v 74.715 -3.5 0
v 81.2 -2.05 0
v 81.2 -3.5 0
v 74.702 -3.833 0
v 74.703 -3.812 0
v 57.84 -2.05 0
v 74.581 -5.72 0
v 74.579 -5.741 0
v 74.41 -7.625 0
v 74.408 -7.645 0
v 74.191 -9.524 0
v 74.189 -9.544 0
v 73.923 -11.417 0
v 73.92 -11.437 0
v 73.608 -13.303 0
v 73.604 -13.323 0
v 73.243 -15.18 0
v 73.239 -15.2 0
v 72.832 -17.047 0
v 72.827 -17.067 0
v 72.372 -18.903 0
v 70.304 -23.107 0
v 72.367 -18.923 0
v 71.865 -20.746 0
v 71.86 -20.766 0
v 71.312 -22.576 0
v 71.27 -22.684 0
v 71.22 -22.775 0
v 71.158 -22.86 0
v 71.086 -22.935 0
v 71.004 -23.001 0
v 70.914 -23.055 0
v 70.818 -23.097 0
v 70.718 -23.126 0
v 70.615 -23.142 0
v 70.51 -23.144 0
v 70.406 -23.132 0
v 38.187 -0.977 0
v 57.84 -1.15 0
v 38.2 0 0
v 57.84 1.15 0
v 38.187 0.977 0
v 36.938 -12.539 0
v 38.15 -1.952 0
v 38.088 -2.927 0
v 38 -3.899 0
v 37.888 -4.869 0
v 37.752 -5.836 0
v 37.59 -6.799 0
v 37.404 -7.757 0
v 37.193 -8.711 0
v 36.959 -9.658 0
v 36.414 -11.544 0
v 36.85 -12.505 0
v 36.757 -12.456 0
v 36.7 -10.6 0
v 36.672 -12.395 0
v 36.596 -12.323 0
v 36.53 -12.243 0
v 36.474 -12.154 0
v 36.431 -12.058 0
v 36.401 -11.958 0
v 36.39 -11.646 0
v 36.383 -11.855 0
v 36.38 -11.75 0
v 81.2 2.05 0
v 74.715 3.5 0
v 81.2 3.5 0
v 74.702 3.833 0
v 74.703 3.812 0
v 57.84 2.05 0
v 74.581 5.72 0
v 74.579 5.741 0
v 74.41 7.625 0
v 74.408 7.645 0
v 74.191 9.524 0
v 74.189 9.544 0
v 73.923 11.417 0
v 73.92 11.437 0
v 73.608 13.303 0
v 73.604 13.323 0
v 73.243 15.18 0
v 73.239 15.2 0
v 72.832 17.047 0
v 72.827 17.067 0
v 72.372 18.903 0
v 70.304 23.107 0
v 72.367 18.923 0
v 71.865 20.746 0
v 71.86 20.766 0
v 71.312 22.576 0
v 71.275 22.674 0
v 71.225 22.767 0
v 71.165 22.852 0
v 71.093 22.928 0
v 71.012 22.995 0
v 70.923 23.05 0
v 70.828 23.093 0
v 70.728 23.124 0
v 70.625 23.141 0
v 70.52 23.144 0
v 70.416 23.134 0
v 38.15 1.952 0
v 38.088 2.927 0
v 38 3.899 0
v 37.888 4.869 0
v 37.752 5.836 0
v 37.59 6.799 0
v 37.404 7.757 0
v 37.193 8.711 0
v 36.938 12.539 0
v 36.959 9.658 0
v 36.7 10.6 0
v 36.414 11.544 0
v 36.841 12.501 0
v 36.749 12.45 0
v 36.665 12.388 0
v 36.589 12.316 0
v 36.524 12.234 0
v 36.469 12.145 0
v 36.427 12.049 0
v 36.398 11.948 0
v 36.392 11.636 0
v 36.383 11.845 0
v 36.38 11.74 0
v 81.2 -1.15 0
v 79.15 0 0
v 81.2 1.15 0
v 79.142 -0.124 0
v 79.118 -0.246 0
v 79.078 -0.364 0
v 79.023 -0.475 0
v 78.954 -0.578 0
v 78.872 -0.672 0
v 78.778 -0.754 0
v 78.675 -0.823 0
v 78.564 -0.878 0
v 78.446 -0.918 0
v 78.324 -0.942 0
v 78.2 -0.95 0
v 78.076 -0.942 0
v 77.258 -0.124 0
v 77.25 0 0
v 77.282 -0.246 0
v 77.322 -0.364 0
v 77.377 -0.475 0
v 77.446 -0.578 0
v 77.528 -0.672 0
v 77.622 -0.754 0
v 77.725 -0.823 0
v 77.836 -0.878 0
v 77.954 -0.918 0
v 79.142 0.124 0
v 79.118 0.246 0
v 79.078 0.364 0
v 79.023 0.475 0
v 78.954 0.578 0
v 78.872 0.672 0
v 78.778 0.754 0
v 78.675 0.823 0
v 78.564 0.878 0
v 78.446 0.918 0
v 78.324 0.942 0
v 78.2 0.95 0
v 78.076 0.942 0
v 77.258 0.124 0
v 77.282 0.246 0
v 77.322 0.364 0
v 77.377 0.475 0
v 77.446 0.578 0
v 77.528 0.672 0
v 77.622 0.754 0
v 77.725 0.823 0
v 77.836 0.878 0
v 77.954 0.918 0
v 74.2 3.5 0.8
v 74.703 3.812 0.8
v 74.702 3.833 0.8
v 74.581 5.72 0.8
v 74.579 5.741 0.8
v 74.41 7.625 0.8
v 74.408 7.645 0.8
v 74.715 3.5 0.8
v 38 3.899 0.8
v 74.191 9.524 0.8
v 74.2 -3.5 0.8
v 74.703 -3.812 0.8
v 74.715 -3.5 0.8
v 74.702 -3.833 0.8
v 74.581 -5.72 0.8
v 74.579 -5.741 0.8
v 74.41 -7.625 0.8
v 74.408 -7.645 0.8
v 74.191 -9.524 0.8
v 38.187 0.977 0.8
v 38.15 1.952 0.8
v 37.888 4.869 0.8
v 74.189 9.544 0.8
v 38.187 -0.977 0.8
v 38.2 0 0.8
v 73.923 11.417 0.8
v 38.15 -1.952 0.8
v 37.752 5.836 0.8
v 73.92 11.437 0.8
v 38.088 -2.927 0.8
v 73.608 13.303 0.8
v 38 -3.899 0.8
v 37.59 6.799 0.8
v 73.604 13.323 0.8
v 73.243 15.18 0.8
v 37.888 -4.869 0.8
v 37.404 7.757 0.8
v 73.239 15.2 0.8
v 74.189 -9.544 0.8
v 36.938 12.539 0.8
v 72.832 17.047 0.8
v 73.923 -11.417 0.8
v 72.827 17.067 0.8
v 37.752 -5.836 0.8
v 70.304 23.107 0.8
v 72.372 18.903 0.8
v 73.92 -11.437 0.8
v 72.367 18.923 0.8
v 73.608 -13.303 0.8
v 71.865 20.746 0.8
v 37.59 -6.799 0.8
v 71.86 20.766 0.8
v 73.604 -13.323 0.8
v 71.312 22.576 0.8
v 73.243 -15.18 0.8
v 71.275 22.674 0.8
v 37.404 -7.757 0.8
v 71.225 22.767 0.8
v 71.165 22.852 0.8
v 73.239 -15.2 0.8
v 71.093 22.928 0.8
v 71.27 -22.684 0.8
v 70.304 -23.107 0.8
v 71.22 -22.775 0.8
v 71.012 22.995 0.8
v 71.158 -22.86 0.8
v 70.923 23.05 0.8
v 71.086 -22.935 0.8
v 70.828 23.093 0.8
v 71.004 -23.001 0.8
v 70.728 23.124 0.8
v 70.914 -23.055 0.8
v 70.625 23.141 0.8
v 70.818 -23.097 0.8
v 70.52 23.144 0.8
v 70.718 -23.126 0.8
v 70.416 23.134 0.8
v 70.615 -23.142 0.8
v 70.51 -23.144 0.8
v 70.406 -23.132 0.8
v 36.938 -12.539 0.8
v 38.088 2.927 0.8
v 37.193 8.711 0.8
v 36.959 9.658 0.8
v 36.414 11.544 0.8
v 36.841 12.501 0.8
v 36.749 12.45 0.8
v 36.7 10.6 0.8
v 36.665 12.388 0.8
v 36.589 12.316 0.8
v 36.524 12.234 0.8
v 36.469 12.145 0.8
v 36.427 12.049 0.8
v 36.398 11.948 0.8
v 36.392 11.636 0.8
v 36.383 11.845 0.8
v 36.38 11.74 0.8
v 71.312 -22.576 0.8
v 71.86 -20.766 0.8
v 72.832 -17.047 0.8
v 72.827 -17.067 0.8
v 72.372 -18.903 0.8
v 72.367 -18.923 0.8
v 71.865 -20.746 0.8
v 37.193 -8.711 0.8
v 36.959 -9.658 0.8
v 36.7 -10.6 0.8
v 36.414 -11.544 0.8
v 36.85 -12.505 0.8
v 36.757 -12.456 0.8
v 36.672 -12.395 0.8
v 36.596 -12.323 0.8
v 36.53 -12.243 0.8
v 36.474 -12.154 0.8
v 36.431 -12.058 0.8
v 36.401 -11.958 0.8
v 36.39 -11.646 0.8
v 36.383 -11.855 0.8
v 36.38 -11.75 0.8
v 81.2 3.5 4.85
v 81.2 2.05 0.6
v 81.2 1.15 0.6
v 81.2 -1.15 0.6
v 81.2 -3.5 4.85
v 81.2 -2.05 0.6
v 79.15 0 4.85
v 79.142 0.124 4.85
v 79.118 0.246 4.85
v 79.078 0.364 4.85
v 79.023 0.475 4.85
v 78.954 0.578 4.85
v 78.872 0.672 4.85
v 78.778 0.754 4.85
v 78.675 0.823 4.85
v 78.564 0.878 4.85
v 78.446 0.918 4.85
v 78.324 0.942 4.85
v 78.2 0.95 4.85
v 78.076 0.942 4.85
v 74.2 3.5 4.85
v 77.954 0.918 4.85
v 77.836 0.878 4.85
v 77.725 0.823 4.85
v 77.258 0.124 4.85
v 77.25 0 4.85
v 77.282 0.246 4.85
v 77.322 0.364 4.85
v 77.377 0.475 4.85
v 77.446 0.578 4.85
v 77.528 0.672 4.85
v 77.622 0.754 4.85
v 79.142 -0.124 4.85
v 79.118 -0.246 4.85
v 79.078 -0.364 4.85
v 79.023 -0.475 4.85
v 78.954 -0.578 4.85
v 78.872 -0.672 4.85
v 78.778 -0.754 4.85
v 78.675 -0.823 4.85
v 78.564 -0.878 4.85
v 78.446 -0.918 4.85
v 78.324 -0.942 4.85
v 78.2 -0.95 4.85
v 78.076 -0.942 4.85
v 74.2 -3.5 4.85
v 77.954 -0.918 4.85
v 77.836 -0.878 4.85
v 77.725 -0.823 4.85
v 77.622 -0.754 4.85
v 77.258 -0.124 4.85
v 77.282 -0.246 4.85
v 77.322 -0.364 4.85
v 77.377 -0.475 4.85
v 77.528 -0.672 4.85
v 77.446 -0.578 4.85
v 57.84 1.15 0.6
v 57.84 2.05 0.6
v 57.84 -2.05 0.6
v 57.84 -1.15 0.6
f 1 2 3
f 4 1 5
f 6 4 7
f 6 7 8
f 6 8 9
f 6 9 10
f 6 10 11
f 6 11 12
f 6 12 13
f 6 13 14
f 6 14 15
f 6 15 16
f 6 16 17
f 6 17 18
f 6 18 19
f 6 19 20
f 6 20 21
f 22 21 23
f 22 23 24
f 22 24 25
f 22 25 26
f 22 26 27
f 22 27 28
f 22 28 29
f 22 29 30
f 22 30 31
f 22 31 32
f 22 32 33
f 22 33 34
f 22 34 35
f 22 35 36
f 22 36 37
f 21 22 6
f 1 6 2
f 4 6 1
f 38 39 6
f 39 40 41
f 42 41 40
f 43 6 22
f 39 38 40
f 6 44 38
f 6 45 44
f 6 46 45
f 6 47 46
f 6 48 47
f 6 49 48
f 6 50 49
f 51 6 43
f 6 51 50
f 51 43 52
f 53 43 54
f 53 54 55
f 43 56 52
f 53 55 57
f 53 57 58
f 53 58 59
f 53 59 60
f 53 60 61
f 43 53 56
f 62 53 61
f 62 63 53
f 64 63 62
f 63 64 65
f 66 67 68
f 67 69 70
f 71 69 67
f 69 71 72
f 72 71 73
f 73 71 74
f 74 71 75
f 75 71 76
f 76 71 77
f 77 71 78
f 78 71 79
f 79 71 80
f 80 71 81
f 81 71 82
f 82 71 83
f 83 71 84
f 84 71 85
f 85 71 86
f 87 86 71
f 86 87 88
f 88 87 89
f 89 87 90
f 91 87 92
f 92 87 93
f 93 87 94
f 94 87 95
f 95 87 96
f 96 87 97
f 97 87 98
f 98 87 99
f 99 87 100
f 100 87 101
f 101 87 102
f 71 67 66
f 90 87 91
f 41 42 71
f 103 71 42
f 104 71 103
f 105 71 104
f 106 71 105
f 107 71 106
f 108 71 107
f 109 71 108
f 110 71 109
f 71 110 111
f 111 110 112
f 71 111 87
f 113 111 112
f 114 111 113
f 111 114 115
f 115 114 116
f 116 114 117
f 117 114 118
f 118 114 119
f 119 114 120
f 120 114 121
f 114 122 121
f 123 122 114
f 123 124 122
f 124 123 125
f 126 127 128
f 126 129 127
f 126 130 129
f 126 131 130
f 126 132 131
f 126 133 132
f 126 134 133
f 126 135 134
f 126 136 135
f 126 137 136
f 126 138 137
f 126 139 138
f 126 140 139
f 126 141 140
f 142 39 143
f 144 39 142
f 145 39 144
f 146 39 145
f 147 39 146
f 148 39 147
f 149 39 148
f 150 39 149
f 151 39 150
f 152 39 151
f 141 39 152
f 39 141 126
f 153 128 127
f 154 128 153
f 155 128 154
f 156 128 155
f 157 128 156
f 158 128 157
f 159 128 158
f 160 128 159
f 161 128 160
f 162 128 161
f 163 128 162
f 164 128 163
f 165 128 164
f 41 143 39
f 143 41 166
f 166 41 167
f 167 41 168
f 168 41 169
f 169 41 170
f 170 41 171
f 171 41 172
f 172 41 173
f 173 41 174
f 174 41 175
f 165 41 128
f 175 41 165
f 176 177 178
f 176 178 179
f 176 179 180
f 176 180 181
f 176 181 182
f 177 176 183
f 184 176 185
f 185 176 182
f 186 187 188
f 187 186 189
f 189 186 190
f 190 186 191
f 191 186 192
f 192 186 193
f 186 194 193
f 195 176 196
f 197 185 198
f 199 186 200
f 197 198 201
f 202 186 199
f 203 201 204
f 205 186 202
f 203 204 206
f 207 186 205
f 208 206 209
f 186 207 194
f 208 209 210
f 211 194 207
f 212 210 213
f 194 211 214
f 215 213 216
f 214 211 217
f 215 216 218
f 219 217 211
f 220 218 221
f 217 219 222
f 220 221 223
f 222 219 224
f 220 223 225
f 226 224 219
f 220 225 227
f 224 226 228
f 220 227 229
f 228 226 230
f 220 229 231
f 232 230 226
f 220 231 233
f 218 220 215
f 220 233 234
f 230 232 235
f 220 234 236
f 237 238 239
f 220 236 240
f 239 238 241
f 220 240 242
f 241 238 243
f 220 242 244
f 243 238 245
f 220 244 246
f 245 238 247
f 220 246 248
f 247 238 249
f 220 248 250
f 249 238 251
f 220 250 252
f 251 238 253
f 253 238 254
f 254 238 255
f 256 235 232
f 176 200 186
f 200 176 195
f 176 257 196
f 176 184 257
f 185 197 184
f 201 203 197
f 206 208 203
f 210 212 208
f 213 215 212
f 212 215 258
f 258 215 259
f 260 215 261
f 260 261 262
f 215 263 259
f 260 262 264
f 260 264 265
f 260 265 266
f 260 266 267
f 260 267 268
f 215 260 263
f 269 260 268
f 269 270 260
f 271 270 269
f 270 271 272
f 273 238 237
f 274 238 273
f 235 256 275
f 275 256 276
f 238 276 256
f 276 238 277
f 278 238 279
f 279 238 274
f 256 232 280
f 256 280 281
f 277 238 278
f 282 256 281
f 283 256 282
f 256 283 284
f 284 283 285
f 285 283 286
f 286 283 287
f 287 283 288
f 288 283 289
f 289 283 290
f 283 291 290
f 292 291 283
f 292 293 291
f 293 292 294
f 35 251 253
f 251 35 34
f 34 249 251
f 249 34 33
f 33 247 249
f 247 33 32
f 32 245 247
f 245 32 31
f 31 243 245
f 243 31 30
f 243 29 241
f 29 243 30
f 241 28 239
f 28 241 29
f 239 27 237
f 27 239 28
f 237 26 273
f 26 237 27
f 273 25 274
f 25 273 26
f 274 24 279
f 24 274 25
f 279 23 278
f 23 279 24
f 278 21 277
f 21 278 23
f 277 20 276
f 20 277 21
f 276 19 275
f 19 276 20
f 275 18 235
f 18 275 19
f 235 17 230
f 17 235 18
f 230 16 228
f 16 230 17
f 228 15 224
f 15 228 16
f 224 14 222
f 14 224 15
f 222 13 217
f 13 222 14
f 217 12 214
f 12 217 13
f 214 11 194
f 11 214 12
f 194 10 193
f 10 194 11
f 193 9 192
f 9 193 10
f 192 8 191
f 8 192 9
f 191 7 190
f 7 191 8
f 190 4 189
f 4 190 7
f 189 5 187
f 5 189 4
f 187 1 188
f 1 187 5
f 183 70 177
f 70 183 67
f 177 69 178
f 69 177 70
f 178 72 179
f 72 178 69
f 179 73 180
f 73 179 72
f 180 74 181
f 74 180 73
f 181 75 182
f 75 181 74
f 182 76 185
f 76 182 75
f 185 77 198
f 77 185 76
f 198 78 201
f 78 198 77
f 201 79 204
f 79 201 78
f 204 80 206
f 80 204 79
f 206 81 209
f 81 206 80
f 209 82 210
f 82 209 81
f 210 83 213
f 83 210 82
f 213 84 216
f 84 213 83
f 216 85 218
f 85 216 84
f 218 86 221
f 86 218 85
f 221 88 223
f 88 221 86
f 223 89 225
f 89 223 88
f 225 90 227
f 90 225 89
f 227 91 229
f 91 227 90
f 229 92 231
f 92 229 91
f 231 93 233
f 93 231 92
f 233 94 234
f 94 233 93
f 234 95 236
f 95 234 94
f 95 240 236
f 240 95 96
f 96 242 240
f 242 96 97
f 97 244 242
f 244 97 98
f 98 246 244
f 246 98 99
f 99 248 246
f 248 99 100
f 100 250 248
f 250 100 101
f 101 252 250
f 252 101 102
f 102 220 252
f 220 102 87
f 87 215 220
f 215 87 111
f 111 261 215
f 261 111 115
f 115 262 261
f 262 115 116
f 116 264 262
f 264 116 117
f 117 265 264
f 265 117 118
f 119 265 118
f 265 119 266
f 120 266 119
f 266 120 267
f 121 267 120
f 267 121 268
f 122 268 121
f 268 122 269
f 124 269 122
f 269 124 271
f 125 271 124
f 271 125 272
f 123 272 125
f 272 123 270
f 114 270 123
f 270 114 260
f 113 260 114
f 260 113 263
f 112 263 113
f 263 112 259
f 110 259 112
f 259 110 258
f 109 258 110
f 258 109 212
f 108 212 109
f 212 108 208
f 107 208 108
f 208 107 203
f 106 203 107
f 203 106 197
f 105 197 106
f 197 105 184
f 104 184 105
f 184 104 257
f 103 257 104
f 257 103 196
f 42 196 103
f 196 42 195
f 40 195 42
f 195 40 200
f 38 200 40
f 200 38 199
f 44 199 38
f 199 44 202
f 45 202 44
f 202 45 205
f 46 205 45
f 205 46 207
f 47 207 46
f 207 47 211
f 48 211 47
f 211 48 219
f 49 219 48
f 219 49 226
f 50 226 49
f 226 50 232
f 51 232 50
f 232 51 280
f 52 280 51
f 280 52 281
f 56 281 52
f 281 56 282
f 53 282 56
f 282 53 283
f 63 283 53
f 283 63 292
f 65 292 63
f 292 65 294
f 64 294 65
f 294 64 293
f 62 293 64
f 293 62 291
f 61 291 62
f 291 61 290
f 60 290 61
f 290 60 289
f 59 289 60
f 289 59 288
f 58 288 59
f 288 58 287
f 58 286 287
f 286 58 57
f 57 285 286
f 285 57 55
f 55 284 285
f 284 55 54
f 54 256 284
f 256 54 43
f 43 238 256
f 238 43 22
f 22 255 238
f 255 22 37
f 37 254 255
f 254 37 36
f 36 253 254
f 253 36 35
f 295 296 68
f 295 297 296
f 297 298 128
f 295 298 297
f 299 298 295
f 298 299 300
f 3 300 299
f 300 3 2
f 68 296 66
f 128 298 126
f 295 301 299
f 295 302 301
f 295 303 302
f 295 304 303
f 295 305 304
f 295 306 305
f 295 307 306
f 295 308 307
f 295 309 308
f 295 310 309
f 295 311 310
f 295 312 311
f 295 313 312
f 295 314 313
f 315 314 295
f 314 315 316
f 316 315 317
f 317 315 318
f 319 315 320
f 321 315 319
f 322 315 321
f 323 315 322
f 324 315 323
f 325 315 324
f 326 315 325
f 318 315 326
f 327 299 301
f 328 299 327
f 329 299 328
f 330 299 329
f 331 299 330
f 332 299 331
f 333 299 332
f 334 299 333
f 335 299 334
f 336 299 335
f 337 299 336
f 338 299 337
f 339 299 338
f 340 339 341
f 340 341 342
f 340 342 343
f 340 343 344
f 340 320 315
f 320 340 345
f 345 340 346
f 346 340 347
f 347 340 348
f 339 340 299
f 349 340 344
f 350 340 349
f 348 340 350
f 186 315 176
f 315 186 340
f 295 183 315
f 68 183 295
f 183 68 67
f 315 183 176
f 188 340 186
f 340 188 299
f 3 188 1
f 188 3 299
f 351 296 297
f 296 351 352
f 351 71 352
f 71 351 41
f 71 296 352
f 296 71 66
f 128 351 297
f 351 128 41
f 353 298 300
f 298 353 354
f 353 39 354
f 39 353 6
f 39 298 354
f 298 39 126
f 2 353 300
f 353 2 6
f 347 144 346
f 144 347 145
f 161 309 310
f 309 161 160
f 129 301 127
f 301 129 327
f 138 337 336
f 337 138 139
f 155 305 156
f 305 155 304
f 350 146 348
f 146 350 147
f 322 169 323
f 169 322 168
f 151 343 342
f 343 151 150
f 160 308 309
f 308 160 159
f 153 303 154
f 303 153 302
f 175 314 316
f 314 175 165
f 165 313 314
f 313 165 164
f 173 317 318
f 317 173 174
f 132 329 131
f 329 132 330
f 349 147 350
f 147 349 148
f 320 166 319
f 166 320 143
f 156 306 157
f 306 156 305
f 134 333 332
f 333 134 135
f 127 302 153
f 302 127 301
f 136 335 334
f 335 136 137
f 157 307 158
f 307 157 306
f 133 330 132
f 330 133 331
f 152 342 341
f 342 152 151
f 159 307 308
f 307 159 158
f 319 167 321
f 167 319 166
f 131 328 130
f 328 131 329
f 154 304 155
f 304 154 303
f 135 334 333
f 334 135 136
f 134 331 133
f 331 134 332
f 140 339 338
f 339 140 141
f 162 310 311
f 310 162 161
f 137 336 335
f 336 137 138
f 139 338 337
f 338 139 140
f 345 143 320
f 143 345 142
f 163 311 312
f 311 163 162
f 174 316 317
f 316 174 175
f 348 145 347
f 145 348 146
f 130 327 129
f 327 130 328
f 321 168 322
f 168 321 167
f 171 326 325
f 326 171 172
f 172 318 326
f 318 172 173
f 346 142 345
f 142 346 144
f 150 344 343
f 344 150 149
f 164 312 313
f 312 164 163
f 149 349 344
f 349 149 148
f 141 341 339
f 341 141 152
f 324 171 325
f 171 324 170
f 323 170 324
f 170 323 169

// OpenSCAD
// file: parameters.scad
// =============================================================================
// Gen-BV — nightly 2026-10-10 (physics_scorer, honest magpylib watts)
// Fewer, wider-spaced poles: 6 Ø20 per rotor (12 of the 16) on an R57 ring over nine 35.2° bobbins (r 39–74 mm, 15.7 mm build). Wider pole pitch means less pole-to-pole leakage and bigger coils, but the electrical frequency drops 25 % and 4 Ø20 sit idle; diametric Ø5 assists lowered the score here, so none are fitted. The scorer puts it at about 62 % of Gen-BR.
// Clocking 0 deg (magnets N facing S) + D-flat keyed bore + index notch + flip-symmetric hole map.
// Windable 2-piece bobbin; turns = physics_scorer turns_fit; copper only between flanges.
// Steel back-iron: 2× Ø142 × 4.76 mm (3/16") mild-steel discs (steel_backiron_disc.dxf); magnets sit ON the steel
// (through-pockets) -> score with --back-iron. Night 2026-10-10.
// =============================================================================
topology            = "dual_rotor";

// --- Wire / winding (physics_scorer winding-fit) -------------------------------
wire_awg            = 26;
wire_od             = 0.45;     // insulated OD mm (bare 0.405)
fill_realistic      = 0.65;     // insulated-wire area / window (DENSE layered wind with a jig; scorer cap 0.65)
turns               = 518;       // = physics_scorer turns_fit (do NOT raise)
coil_former_type    = "bobbin";
coil_core_inset     = 15.66;     // radial copper build: hub = copper boundary inset by this
wind_build_axial    = 0.0;      // nothing proud of the flanges
wind_build_radial   = 0.0;

// --- Bobbin (base + lid) ---------------------------------------------------------
coil_id_r           = 39.00;    // copper boundary sector
coil_od_r           = 74.00;
span_deg            = 35.15;    // = pitch - 2*asin((wall+0.85)/coil_id_r) -> >=1.2 mm stator web
former_web          = 8.10;     // copper height between flanges (TALL copper: steel keeps Bz up)
flange_t            = 0.80;     // >= 0.8 mm FDM wall rule (tall winds push on the flanges)
wall                = 0.80;     // flange lip beyond copper
former_bare_h       = former_web + 2 * flange_t;
coil_envelope_h     = former_bare_h + 2 * wind_build_axial;
tab_w               = 7.0;
tab_len             = 7.0;
tab_h               = former_bare_h / 2;
pin_d               = 1.9;      // 1.75 mm filament locating pin
coil_mount_r        = coil_od_r + 0.2 + 4.0;
lead_y              = 1.6;
lead_slot_w         = 0.9;
lead_groove_d       = 0.6;

// --- Gap -------------------------------------------------------------------------
run_clear           = 0.50;     // rotor face -> flange
gap_spacer_h        = run_clear + wind_build_axial;
m2m                 = coil_envelope_h + 2 * run_clear;   // rotor face to rotor face (= gap_sleeve length)

// --- Stator ----------------------------------------------------------------------
coil_stations       = 9;
bay_clear           = 0.25;
stator_thick        = former_bare_h;                        // bobbins flush both faces
stator_od           = 166;
shaft_clear_stator  = 14.0;     // stator is static; gap sleeve OD 12 spins inside

// --- Rotor(s) --------------------------------------------------------------------
magnet_Br           = 1.43;     // N52
magnet_d_large      = 20.0;
magnet_h_large      = 5.0;      // one O20x5 per pocket
magnet_h_small      = 5.0;      // unused: no O5 pockets in this kit
halbach_magnetisation = "none";  // NO O5 assist magnets in this kit (scan: they lower the 4-pole score)
rotor_b_same_axis   = true;     // same-index magnets share one axis: N faces S across the gap
large_pocket_d      = 20.3;
small_pocket_d      = 5.3;
pocket_h            = 5.00;     // THROUGH the carrier: magnet back face sits on the steel disc (FLUSH seat: carrier = magnet height, magnet face level with the rotor face)
large_n             = 6;
R_large             = 57.0;
small_r_list        = [];       // no O5 pockets
carrier_od          = 142.0;
carrier_thick       = pocket_h;
hub_h               = 12.0;     // > steel_t + insert: radial set-screw clears the steel
hub_od              = 24.0;     // slim hub so the M4 brace rods fit at R~18 inside the coil ring
hub_insert_d        = 4.0;      // M3 heat-set insert, radial, bears on the D-flat
rotor_b_offset_deg  = 0.0;      // CLOCKING: magnets directly opposite
shaft_key           = "dflat";
dflat_depth         = 0.5;      // 8 mm shaft with 0.5 mm flat (7.5 across flat)
index_notch_d       = 3.0;

// --- Steel back-iron (buyable laser-cut) -------------------------------------------
steel_t             = 4.76;      // mild steel thickness (image method ignores it; sized from steel_flux.py so the return path stays well below saturation)
steel_center_hole   = 26.0;     // slips over the rotor hub (OD 24)
steel_od            = carrier_od;   // steel disc OD = rotor carrier OD

// --- Modular MAX interface ----------------------------------------------------------
shaft_bore          = 8.35;
dflat_x             = 4.0 - dflat_depth + (shaft_bore - 8.0) / 2;
bearing_d           = 21.85;
bearing_h           = 7.2;
m3_clear            = 3.5;
bolt_r_inner        = 30.0;     // M3 steel-disc clamp bolts (inside the magnet ring)
bolt_n_inner        = 4;
bolt_inner_angles   = [0, 90, 180, 270];
bolt_r_outer        = 66.0;     // second M3 steel-disc clamp ring
bolt_outer_angles   = [15, 165, 195, 345];
flange_bolt_r       = 77.0;     // frame rods: OUTSIDE the rotor OD (rotors spin inside them)
flange_bolt_n       = 9;
flange_bolt_offset  = 20.00;    // between coil stations -> never cuts a lead groove/tab
brace_r             = 18.0;
brace_d             = 4.3;      // temporary M4 jack rods (assembly only)
brace_n             = 4;
brace_angles        = [45, 135, 225, 315];          // flip-symmetric

spacer_pad_od       = 14.0;
spacer_pad_id       = m3_clear;
endbell_od          = 164.0;
endbell_thick       = 8.0;
endbell_shaft_clear = 10.0;
collar_h            = 10.0;
standoff_od         = 9.0;
frame_standoff_h    = run_clear + carrier_thick + hub_h + collar_h + 2.0;
sleeve_od           = 12.0;
plate_max_mm        = 410;

$fn = 64;
// main file
// Gen-BV — bobbin LID (top flange + locating tab). Print x9, flange face DOWN on the bed.
// CA-glue onto the hub top BEFORE winding. Tab = lap joint into the stator tab pocket; 1.75 mm filament
// pin through pin hole + stator ledge, trim flush. Lead slots carry both leads flush.
include <parameters.scad>;
$fn = 48;
module sector_2d(r_in, r_out, ang) {
    polygon([
        for (a = [-ang/2 : ang/24 : ang/2]) [r_in*cos(a), r_in*sin(a)],
        for (a = [ang/2 : -ang/24 : -ang/2]) [r_out*cos(a), r_out*sin(a)]
    ]);
}
module footprint_2d() { offset(r=wall) sector_2d(coil_id_r, coil_od_r, span_deg); }
module hub_2d()       { offset(delta=-coil_core_inset) sector_2d(coil_id_r, coil_od_r, span_deg); }

difference() {
    union() {
        linear_extrude(flange_t) footprint_2d();
        translate([coil_od_r + 0.2, -tab_w/2, 0]) cube([tab_len, tab_w, tab_h]);
    }
    translate([coil_mount_r, 0, -0.1]) cylinder(d=pin_d, h=tab_h + 1);
    for (y = [lead_y, -lead_y])
        translate([coil_od_r - coil_core_inset - 0.5, y - lead_slot_w/2, -0.1])
            cube([coil_core_inset + tab_len + 2, lead_slot_w, lead_groove_d + 0.1]);
}
